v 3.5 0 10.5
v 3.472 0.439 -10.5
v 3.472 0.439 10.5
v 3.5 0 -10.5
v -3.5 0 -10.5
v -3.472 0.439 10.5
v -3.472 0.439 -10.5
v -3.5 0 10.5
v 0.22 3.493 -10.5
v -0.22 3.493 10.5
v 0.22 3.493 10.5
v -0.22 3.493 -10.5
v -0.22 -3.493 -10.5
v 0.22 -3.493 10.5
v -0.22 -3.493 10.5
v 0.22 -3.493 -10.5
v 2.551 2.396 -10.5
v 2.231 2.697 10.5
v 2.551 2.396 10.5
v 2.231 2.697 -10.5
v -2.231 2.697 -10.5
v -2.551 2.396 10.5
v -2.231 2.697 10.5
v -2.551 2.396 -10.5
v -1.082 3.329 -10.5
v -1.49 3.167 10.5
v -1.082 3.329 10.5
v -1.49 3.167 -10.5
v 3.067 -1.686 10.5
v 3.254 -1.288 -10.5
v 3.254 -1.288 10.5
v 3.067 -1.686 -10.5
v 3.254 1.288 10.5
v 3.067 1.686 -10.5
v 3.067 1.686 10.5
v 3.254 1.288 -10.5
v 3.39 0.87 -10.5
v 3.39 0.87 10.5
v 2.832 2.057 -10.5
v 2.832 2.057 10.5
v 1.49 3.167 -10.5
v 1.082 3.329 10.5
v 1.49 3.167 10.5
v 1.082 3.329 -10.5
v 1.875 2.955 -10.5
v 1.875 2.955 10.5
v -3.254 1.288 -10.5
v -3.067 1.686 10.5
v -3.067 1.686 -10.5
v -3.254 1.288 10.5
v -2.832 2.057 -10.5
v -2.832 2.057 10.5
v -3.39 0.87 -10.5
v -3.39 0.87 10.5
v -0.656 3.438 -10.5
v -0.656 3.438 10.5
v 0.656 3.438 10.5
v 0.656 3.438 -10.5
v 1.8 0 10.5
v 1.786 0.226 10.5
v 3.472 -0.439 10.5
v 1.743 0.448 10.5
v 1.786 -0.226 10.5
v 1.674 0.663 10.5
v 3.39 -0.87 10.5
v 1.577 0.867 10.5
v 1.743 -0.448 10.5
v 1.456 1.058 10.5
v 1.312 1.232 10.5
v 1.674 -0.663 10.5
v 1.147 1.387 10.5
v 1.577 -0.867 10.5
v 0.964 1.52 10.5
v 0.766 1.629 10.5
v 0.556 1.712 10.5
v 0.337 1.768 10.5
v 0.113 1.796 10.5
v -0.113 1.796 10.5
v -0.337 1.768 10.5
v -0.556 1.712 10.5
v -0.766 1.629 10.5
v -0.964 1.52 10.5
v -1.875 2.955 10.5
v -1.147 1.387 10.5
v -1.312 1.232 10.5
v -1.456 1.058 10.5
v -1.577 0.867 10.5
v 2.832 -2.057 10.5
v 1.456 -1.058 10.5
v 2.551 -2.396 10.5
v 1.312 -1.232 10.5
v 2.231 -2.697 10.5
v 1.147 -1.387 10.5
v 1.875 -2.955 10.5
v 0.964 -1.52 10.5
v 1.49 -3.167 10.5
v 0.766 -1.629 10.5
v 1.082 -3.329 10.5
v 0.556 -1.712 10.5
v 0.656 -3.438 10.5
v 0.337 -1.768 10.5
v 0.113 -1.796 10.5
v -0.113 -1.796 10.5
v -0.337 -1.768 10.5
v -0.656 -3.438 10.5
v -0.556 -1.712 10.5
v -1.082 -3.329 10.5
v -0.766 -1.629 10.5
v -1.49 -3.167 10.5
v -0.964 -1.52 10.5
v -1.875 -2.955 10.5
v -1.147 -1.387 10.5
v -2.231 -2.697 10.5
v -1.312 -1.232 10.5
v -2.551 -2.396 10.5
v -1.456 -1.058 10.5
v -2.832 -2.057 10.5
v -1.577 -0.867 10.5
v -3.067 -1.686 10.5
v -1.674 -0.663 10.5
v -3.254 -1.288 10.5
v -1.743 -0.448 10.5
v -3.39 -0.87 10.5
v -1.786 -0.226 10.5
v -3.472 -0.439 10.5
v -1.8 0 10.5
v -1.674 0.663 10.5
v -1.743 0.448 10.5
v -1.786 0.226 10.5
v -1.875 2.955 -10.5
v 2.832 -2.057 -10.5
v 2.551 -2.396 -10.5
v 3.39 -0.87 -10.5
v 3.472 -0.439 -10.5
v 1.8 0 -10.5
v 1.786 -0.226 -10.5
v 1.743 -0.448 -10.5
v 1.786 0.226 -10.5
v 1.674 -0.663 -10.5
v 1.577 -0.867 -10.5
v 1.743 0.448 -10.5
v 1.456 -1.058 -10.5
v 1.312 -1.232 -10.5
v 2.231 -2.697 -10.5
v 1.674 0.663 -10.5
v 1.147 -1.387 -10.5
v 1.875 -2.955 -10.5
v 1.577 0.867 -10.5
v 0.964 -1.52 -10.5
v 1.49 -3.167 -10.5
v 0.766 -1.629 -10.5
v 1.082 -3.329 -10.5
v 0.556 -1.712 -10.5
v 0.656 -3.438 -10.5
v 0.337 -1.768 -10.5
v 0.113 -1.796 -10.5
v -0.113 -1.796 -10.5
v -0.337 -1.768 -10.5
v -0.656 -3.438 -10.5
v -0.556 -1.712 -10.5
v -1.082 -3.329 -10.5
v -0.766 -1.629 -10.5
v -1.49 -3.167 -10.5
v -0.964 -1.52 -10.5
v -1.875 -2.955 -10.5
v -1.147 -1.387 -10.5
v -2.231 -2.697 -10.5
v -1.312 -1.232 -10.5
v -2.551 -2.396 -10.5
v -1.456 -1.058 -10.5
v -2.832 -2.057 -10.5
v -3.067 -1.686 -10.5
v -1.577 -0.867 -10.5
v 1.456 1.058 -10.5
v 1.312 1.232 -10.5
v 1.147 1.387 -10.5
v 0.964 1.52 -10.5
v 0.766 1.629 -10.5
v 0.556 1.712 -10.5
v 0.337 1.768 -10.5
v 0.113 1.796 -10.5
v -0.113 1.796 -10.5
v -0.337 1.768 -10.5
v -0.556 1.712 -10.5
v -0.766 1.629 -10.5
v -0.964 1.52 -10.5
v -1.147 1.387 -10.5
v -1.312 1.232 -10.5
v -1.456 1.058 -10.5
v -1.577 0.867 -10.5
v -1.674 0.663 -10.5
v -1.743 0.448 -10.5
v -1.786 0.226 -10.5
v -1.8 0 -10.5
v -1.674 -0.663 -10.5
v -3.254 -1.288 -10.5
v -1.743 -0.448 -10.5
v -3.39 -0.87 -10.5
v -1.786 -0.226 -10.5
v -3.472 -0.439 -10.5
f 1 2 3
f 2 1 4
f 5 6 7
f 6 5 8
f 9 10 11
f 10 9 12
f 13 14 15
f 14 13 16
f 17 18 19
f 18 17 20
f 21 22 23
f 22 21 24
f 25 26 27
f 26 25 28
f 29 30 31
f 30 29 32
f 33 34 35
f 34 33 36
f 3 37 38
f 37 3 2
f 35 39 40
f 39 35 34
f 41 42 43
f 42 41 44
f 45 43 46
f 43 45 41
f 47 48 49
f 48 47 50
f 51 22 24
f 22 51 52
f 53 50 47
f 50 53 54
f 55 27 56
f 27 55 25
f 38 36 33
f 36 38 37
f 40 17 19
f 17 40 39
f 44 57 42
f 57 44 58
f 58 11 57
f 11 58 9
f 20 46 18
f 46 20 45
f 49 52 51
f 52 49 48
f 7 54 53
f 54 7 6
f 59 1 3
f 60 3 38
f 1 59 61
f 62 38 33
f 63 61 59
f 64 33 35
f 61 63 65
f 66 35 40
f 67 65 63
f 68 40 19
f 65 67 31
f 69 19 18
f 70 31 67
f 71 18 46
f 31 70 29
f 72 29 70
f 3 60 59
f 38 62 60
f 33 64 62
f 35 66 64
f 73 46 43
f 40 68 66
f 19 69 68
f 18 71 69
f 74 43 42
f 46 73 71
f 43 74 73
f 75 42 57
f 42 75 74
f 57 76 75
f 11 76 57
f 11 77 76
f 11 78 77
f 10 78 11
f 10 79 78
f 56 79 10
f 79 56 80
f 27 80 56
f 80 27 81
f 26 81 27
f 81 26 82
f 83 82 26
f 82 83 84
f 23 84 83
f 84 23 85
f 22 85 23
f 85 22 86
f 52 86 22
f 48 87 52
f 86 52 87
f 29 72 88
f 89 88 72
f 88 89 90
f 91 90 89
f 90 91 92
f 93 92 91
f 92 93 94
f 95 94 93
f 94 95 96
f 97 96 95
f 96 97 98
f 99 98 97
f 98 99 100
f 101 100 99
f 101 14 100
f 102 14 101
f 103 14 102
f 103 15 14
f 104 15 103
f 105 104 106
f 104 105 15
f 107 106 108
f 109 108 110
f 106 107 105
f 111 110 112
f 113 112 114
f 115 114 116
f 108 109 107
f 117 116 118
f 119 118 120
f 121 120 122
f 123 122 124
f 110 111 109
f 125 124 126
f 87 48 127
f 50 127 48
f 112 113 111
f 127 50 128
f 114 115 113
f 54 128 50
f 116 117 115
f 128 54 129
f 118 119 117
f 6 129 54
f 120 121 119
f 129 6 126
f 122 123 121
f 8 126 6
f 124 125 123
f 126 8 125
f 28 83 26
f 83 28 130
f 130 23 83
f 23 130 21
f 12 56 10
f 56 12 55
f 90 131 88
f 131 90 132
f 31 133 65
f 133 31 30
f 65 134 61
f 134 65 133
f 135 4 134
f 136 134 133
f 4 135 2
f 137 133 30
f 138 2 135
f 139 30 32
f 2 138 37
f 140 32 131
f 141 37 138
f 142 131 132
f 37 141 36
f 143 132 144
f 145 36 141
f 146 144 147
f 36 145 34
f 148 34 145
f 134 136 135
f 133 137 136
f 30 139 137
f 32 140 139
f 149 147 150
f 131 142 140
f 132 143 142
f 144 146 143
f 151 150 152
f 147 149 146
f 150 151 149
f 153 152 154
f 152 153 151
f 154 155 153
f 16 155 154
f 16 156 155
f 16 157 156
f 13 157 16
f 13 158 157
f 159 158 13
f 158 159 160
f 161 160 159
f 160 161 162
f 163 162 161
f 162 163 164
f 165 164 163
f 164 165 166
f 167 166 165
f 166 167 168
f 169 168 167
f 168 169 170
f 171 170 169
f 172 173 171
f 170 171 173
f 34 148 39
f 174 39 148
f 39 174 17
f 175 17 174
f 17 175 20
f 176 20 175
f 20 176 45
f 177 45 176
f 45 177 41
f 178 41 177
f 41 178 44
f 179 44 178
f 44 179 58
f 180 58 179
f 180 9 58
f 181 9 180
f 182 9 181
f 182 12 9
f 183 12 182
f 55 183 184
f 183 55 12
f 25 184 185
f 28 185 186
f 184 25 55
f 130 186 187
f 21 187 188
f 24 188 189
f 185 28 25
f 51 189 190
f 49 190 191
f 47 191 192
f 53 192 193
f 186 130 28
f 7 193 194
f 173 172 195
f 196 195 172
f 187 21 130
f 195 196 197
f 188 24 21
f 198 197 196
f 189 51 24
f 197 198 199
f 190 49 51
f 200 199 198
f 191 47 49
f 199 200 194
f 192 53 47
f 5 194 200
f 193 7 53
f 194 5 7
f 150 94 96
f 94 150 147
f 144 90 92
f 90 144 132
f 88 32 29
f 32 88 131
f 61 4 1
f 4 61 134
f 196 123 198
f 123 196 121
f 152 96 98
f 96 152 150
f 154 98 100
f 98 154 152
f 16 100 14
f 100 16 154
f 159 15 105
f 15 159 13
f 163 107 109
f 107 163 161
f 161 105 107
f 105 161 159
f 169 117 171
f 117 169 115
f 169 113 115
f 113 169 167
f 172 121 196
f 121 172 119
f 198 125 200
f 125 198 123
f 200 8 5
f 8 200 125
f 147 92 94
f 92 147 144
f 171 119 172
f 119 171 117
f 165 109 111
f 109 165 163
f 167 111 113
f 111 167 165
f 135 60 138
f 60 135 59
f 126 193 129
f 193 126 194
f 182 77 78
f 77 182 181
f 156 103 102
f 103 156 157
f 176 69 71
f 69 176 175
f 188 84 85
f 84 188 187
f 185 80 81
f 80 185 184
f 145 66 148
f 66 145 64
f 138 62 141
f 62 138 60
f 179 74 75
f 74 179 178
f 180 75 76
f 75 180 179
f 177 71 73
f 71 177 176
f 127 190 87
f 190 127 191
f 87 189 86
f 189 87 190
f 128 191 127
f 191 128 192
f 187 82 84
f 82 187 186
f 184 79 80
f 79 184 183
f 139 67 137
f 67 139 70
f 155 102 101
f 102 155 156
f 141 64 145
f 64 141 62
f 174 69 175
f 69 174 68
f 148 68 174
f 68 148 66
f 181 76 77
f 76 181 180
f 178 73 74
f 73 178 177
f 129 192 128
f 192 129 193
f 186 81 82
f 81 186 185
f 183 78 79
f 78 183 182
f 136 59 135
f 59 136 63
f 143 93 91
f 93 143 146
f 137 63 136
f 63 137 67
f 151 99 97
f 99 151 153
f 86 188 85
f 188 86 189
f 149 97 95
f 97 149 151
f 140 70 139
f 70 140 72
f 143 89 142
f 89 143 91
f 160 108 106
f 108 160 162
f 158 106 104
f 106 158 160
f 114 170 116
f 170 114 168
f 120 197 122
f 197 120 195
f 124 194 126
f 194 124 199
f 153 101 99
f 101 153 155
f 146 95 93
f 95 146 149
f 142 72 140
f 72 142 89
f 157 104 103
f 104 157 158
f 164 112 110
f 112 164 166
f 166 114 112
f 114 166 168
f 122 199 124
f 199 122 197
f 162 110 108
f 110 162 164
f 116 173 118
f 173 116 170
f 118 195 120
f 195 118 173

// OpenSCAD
$fn = 50;


difference() {
	union() {
		translate(v = [0, 0, -10.5000000000]) {
			cylinder(h = 21, r = 3.5000000000);
		}
	}
	union() {
		translate(v = [0, 0, -100.0000000000]) {
			cylinder(h = 200, r = 1.8000000000);
		}
	}
}
